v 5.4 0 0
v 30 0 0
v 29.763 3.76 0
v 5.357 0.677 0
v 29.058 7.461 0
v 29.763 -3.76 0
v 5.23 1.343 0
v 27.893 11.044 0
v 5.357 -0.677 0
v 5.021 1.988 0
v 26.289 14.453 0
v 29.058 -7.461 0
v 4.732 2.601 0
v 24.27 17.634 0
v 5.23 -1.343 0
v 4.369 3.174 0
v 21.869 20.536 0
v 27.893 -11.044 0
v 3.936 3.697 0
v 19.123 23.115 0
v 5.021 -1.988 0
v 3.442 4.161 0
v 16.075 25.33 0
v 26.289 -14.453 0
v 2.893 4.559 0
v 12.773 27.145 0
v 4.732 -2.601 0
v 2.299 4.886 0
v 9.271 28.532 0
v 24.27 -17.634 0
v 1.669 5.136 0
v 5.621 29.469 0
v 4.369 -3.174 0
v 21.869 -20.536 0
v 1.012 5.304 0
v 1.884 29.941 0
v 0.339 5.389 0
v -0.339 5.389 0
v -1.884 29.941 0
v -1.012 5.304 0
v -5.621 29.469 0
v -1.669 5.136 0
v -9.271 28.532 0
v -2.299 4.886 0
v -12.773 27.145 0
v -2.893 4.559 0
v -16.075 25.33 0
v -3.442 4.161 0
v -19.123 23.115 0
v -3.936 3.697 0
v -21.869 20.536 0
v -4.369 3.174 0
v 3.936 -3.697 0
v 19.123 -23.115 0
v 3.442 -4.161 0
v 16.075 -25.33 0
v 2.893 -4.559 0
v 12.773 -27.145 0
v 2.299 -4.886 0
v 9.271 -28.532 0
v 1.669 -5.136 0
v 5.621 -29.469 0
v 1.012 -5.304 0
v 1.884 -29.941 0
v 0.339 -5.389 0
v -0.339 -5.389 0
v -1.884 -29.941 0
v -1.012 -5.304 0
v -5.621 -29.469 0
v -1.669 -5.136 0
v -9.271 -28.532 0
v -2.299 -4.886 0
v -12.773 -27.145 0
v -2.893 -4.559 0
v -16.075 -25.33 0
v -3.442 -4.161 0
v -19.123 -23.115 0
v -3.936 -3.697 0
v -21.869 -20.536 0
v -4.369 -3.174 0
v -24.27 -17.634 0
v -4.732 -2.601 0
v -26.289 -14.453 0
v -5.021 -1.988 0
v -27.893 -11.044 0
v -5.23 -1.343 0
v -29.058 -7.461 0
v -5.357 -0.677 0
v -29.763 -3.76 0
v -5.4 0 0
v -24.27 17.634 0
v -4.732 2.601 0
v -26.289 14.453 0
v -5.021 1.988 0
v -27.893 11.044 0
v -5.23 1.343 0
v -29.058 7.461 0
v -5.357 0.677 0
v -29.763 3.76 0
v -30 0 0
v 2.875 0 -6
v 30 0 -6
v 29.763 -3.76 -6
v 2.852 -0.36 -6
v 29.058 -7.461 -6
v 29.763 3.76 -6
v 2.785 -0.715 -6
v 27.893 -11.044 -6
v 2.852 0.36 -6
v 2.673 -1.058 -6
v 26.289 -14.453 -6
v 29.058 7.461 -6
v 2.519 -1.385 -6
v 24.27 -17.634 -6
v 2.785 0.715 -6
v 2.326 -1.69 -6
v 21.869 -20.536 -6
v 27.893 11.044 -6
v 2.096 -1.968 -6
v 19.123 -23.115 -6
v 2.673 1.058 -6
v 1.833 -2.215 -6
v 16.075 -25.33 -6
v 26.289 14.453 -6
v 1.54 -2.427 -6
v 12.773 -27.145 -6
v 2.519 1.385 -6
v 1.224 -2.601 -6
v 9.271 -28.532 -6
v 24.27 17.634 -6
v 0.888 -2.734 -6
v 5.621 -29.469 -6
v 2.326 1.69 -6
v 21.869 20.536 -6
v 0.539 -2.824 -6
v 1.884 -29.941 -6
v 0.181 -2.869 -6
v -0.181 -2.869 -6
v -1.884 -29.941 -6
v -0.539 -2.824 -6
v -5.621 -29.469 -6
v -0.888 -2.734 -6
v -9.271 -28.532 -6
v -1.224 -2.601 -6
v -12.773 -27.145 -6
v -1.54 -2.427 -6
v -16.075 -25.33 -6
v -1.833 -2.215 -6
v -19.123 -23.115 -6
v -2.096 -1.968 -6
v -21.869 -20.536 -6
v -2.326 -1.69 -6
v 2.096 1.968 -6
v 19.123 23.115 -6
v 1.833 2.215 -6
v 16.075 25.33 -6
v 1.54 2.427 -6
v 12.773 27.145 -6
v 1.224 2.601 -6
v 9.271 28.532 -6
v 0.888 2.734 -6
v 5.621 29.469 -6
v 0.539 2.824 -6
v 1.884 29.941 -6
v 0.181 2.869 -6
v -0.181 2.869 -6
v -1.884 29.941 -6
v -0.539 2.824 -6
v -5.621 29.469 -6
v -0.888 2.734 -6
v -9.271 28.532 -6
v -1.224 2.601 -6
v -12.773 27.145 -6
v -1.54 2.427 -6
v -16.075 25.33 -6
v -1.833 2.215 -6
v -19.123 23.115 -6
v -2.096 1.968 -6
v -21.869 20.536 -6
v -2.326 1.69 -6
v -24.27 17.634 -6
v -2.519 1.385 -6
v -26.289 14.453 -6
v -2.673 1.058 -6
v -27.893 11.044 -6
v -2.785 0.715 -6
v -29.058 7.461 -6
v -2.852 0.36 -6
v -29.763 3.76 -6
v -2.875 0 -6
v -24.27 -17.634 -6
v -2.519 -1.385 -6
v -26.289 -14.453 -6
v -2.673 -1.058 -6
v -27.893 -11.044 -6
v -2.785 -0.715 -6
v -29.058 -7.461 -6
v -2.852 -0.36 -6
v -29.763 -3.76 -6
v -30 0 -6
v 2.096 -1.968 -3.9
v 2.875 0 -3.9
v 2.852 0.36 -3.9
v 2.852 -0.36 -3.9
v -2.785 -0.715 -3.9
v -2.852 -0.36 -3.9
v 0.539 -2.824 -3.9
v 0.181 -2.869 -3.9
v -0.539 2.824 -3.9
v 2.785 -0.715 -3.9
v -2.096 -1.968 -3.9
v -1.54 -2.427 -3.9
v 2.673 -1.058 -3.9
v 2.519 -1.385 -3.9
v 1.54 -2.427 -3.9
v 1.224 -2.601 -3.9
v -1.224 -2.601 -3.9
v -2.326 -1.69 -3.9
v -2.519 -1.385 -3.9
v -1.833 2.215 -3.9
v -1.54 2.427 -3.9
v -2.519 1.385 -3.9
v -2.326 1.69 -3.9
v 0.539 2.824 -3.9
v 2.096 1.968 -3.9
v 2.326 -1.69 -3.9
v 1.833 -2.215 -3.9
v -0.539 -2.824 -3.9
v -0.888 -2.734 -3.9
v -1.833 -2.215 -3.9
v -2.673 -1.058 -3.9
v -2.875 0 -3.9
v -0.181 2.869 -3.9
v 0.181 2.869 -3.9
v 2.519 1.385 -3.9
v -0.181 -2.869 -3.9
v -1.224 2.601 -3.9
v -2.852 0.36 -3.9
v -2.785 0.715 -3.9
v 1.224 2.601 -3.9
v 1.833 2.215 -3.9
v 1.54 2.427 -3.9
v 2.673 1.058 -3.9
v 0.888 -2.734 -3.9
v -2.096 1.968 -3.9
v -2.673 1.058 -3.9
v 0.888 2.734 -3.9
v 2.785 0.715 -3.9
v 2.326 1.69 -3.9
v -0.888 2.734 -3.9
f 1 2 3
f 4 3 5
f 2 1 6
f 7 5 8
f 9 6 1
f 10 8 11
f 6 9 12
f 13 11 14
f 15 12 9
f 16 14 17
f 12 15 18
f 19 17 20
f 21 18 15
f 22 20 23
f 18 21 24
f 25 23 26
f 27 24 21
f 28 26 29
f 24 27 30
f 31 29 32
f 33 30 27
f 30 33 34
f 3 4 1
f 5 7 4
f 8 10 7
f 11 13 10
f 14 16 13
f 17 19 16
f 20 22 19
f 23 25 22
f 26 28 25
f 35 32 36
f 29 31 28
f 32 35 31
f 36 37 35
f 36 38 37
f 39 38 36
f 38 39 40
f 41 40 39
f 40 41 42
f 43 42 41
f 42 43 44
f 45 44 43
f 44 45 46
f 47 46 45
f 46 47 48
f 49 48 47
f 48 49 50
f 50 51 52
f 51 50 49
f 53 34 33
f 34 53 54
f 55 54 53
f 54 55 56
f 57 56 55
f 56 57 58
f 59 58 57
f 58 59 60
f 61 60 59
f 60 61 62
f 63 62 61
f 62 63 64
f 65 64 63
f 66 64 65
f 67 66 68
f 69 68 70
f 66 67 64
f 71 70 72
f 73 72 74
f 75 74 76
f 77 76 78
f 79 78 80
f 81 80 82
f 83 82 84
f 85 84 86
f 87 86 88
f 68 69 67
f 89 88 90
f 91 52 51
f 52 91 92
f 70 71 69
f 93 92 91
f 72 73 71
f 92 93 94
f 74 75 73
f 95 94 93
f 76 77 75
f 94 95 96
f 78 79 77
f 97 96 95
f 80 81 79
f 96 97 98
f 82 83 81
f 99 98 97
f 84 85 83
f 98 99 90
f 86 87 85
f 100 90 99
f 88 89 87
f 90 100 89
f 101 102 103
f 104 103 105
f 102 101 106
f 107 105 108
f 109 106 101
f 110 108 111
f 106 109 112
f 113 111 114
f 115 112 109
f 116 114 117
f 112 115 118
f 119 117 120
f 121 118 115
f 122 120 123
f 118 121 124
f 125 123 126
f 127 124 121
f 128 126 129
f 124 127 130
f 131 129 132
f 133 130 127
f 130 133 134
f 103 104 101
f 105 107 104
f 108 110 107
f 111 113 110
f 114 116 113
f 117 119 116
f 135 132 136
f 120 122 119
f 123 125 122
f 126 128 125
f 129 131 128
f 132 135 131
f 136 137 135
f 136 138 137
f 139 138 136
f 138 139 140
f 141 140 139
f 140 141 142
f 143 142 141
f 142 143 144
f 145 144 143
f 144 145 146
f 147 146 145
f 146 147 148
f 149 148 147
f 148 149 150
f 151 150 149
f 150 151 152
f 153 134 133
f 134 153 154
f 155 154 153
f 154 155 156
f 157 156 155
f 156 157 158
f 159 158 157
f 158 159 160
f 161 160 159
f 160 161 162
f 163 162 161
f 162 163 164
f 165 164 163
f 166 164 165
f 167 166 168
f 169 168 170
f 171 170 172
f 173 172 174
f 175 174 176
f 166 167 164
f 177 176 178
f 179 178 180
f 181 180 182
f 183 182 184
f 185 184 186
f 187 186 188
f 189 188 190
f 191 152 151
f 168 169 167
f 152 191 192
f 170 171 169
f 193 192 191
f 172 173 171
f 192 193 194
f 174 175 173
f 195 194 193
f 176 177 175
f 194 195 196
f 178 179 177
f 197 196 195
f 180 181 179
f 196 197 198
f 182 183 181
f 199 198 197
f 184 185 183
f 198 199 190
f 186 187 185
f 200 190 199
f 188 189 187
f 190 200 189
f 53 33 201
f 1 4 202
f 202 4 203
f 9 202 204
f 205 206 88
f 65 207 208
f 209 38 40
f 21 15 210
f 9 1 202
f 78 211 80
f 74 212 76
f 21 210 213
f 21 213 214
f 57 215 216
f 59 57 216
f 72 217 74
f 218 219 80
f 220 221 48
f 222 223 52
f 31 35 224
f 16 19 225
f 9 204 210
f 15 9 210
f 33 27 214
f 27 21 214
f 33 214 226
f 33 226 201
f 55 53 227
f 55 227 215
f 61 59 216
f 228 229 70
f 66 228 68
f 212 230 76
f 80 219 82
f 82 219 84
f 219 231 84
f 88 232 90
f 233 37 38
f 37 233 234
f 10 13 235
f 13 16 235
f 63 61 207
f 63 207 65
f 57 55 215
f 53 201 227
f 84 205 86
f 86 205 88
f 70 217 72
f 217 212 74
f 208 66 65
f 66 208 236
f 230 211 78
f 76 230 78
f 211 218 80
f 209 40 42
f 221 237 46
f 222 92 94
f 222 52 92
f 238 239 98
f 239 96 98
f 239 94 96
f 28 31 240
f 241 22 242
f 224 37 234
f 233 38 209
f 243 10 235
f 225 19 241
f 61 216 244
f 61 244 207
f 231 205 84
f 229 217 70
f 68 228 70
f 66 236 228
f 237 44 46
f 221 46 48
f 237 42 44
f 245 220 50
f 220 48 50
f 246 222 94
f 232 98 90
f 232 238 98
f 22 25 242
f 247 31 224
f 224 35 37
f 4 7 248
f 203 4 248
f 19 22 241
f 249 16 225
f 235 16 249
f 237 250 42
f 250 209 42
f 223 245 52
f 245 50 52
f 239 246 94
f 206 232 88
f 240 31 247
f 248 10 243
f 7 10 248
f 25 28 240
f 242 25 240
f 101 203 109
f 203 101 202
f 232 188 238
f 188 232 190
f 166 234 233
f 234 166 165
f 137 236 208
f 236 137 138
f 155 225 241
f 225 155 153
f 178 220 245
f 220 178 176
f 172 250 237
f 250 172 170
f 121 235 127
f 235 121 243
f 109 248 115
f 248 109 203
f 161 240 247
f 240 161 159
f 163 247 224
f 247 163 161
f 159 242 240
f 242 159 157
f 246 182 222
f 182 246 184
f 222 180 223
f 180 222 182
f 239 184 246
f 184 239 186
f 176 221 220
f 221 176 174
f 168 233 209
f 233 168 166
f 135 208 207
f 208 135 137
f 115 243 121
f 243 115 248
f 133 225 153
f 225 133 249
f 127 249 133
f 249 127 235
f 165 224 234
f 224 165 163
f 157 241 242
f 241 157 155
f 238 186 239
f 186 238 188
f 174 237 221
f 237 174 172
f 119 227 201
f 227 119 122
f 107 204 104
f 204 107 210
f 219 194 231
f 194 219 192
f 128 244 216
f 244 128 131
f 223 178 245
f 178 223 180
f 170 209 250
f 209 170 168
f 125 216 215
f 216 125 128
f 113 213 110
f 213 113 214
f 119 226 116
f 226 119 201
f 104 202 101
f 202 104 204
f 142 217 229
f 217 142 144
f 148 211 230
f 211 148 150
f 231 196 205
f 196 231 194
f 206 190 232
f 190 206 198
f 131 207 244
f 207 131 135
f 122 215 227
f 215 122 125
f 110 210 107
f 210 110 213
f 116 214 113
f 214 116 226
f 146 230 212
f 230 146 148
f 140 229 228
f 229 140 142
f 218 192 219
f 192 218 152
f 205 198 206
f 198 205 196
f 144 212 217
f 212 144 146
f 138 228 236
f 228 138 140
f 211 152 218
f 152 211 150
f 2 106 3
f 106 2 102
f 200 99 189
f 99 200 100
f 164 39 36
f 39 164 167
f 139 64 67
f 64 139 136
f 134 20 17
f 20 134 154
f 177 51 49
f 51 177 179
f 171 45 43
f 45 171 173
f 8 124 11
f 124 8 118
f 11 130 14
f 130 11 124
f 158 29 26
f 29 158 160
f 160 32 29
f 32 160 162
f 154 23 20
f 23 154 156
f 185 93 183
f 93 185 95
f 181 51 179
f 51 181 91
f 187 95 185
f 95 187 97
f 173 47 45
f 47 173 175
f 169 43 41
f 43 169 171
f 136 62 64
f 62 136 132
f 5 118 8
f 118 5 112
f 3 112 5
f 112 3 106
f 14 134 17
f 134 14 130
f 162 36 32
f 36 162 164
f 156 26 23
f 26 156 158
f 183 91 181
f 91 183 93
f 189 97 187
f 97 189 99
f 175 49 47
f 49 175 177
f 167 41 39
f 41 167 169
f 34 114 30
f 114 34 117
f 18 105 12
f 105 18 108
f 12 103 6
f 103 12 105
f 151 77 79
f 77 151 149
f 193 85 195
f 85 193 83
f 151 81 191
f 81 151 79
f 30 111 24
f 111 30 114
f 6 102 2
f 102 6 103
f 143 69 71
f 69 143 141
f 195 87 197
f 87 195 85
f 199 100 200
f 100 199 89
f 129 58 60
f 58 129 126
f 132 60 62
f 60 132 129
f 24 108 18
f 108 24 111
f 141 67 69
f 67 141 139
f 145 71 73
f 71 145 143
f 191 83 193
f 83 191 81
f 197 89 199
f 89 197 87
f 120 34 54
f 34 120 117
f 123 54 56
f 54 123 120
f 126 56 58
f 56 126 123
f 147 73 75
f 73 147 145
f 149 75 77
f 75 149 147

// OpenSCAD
$fn = 50;


difference() {
	union() {
		translate(v = [0, 0, -6.0000000000]) {
			cylinder(h = 6, r = 30.0000000000);
		}
	}
	union() {
		translate(v = [0, 0, 0]) {
			rotate(a = [0, 0, 0]) {
				difference() {
					union() {
						translate(v = [0, 0, -6.0000000000]) {
							cylinder(h = 6, r = 2.6000000000);
						}
						translate(v = [0, 0, -3.9000000000]) {
							cylinder(h = 3.9000000000, r1 = 2.8750000000, r2 = 5.4000000000);
						}
						translate(v = [0, 0, -6.0000000000]) {
							cylinder(h = 6, r = 2.8750000000);
						}
						translate(v = [0, 0, -6.0000000000]) {
							cylinder(h = 6, r = 2.6000000000);
						}
					}
					union();
				}
			}
		}
	}
}
